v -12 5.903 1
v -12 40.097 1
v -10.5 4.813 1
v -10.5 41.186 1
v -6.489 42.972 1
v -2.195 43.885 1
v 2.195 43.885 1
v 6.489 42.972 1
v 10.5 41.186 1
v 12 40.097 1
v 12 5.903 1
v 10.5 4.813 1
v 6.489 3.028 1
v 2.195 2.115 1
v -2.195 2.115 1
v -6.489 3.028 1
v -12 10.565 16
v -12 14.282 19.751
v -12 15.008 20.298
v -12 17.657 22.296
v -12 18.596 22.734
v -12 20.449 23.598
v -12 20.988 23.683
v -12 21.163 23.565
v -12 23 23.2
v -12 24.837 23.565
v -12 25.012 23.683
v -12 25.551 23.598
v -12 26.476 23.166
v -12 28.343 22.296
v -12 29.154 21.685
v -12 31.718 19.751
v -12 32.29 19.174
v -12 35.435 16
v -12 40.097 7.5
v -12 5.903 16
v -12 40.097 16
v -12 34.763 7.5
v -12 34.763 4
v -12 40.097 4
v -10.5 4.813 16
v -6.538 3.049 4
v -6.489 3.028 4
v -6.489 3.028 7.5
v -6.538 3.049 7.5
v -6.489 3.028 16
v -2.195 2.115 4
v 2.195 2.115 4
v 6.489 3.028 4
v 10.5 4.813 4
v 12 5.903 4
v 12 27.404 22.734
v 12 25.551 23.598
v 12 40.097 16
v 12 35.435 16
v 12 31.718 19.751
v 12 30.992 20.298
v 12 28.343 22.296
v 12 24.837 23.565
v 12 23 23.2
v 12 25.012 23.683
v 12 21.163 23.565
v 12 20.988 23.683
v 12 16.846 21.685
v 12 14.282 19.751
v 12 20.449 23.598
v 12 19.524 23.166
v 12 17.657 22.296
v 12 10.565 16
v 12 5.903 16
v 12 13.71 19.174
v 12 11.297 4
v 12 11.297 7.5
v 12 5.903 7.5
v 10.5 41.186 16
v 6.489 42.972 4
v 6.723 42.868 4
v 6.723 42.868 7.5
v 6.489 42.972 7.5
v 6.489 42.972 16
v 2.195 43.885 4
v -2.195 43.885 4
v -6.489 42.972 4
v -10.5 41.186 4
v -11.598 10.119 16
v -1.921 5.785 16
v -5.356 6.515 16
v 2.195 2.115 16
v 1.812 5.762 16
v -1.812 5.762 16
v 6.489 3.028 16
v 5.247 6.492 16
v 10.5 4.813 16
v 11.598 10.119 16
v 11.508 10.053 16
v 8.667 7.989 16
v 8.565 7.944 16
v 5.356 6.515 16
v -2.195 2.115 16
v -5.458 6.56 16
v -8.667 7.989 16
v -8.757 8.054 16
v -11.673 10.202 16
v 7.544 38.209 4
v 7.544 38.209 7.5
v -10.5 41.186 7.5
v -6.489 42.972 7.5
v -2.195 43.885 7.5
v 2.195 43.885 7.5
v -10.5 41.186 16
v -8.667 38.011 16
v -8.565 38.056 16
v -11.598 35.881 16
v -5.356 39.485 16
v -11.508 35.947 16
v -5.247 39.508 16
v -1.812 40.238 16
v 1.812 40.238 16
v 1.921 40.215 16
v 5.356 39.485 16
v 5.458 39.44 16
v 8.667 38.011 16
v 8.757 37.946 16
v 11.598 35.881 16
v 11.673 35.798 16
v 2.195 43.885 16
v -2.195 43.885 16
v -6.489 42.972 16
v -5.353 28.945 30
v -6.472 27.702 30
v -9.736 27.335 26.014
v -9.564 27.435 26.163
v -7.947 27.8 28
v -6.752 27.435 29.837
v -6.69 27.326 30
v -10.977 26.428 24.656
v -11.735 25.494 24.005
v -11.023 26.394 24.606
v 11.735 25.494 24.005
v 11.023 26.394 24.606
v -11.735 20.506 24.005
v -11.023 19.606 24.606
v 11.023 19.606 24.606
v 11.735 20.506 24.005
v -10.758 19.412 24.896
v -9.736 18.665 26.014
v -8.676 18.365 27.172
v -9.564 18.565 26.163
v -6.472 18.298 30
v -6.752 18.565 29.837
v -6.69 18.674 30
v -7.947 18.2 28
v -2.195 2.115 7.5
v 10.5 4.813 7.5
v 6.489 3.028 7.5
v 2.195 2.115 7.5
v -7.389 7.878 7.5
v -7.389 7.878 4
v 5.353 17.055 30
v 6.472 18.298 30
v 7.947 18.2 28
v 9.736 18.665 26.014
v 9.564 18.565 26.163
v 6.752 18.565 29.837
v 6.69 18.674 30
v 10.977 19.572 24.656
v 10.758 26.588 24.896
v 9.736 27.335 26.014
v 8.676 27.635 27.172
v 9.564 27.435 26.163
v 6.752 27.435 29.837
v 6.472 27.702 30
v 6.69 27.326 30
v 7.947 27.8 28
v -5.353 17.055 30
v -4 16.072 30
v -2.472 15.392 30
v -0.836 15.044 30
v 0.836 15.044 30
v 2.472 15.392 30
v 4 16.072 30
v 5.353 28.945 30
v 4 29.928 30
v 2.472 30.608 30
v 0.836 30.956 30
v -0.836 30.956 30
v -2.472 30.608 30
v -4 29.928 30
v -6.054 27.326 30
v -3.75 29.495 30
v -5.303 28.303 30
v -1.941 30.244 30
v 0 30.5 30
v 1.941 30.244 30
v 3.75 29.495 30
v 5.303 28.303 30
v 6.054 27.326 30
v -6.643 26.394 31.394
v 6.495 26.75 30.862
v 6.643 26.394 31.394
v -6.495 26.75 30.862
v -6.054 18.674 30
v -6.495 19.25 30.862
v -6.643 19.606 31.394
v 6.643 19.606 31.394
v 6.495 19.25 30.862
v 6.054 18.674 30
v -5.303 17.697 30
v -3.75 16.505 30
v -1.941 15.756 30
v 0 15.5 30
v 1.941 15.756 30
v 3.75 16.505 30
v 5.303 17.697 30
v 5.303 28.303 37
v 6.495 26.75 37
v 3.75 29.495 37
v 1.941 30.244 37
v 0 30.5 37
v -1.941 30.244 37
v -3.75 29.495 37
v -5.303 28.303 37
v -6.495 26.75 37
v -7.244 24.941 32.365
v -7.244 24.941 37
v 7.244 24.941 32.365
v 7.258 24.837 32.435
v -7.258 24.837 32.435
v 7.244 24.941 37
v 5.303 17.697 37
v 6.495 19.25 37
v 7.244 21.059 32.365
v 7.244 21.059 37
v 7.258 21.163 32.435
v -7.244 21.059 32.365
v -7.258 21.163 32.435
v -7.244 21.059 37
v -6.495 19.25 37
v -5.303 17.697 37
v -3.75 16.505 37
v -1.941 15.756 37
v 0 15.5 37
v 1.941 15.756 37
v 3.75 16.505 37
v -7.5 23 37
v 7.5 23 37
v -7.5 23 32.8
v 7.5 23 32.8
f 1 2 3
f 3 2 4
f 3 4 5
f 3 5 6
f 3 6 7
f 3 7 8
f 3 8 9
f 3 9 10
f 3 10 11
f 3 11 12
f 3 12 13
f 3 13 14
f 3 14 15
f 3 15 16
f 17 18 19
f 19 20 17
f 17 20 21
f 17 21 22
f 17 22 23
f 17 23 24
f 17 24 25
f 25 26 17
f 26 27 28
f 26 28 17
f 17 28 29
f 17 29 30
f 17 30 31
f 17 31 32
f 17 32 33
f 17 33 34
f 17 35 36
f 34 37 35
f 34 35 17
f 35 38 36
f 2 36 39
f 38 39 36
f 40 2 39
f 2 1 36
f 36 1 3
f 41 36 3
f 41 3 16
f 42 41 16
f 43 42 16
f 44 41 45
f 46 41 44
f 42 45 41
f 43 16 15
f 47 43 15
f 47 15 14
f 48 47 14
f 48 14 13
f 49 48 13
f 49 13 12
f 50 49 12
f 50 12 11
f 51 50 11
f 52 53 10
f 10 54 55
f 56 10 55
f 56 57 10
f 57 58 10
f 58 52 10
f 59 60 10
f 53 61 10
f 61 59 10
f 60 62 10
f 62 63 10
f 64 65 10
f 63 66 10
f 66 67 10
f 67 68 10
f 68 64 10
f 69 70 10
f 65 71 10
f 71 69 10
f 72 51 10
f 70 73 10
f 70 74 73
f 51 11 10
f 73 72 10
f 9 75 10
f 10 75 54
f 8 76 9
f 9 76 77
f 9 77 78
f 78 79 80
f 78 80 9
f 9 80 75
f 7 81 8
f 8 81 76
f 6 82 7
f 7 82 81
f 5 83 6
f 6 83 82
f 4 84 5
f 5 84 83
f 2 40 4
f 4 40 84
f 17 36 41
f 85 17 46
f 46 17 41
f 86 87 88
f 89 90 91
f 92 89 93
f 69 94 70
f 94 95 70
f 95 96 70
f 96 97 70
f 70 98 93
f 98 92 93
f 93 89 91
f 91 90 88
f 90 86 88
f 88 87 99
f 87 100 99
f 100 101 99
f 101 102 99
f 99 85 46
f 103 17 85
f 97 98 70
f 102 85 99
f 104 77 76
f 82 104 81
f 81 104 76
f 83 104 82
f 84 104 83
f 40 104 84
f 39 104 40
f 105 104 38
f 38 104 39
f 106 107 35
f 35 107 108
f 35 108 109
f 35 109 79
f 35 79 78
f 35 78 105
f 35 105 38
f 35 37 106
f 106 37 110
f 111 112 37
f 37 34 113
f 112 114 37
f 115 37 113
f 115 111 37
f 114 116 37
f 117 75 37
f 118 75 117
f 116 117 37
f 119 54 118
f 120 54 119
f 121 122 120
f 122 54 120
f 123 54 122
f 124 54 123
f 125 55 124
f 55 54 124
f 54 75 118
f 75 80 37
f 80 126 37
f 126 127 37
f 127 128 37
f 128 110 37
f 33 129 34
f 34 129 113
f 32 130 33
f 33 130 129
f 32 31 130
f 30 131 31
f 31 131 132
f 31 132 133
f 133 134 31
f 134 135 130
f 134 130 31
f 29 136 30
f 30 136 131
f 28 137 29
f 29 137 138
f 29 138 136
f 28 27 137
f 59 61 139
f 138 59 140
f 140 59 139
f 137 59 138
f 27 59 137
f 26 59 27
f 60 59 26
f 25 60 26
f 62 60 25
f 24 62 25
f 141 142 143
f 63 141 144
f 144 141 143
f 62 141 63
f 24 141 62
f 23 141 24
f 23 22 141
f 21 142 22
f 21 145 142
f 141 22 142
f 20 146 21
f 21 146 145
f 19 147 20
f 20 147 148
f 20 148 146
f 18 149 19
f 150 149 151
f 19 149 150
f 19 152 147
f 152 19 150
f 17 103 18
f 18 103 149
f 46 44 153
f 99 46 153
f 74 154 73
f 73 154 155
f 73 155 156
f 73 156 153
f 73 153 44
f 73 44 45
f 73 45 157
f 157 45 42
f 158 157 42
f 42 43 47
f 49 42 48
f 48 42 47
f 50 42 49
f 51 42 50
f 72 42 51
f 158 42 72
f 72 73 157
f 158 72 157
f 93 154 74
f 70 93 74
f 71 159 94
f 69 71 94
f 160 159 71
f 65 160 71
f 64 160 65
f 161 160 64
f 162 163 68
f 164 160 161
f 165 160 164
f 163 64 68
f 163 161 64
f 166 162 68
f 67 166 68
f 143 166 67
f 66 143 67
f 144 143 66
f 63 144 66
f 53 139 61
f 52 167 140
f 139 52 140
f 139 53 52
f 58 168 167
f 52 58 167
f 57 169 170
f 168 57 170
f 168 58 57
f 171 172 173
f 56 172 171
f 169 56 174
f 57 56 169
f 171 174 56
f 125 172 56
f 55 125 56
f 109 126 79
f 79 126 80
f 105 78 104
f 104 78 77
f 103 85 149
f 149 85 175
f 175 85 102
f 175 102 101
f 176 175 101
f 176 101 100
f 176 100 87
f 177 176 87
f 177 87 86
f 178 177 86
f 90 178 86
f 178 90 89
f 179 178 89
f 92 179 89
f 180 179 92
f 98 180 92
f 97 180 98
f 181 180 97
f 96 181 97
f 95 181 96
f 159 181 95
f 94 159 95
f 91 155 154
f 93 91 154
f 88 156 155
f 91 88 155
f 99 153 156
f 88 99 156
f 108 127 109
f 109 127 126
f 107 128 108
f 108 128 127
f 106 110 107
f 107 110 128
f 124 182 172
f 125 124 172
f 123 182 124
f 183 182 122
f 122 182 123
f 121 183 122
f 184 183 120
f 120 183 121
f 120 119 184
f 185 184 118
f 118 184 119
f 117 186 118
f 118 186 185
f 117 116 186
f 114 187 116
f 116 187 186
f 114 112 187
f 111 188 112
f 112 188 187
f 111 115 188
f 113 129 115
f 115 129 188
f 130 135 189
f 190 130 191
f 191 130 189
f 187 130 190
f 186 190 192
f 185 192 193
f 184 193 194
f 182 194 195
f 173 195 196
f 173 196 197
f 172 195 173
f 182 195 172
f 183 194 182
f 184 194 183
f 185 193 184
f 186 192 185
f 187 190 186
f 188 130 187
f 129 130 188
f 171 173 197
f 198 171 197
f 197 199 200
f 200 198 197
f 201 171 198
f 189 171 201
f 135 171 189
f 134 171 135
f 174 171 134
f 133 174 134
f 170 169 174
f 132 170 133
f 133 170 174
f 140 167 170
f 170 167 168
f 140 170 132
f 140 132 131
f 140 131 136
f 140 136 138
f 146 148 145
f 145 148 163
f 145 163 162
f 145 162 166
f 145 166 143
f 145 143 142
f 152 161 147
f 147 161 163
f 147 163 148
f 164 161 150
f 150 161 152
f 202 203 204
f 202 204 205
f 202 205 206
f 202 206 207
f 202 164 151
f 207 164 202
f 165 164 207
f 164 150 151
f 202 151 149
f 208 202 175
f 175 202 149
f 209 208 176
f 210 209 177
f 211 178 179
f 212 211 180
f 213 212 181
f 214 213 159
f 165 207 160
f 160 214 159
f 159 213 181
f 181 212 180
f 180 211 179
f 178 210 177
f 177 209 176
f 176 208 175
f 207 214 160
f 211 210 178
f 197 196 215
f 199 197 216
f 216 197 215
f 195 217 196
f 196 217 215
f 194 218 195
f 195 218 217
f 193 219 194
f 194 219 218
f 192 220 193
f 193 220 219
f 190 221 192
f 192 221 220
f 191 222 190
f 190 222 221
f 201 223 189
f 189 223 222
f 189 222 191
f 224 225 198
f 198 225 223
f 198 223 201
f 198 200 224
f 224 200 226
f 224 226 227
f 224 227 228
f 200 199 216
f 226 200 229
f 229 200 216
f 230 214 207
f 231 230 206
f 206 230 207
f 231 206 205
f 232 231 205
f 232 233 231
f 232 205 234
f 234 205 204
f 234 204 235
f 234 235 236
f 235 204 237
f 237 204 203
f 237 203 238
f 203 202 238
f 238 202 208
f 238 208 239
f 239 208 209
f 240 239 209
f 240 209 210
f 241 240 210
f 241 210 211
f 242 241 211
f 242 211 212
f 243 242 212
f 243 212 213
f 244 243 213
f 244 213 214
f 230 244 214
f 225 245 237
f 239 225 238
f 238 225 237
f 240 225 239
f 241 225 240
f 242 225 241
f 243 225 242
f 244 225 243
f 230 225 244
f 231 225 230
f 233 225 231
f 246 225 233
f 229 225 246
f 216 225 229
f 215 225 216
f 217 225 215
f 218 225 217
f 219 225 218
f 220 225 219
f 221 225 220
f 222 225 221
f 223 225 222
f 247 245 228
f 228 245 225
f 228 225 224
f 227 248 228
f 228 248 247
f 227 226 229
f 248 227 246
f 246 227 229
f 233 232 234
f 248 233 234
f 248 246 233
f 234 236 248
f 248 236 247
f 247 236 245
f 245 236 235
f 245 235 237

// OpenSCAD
difference() {

union() {
translate([0,23,1])
cylinder(15,21,21);

translate([0,23,15])
cylinder(15,18,8);

translate([0,23,29])
cylinder(8,7.5,7.5);
}

translate([12,0,0])
cube([10,50,35]);

translate([-12-10,0,0])
cube([10,50,35]);

translate([-6,0,4])
rotate([0,0,10])
cube([30,8,3.5]);

translate([-22,33,4])
rotate([0,0,10])
cube([30,8,3.5]);

translate([-13,23,28])
rotate([0,90,0])
cylinder(25,4.8,4.8);
}
